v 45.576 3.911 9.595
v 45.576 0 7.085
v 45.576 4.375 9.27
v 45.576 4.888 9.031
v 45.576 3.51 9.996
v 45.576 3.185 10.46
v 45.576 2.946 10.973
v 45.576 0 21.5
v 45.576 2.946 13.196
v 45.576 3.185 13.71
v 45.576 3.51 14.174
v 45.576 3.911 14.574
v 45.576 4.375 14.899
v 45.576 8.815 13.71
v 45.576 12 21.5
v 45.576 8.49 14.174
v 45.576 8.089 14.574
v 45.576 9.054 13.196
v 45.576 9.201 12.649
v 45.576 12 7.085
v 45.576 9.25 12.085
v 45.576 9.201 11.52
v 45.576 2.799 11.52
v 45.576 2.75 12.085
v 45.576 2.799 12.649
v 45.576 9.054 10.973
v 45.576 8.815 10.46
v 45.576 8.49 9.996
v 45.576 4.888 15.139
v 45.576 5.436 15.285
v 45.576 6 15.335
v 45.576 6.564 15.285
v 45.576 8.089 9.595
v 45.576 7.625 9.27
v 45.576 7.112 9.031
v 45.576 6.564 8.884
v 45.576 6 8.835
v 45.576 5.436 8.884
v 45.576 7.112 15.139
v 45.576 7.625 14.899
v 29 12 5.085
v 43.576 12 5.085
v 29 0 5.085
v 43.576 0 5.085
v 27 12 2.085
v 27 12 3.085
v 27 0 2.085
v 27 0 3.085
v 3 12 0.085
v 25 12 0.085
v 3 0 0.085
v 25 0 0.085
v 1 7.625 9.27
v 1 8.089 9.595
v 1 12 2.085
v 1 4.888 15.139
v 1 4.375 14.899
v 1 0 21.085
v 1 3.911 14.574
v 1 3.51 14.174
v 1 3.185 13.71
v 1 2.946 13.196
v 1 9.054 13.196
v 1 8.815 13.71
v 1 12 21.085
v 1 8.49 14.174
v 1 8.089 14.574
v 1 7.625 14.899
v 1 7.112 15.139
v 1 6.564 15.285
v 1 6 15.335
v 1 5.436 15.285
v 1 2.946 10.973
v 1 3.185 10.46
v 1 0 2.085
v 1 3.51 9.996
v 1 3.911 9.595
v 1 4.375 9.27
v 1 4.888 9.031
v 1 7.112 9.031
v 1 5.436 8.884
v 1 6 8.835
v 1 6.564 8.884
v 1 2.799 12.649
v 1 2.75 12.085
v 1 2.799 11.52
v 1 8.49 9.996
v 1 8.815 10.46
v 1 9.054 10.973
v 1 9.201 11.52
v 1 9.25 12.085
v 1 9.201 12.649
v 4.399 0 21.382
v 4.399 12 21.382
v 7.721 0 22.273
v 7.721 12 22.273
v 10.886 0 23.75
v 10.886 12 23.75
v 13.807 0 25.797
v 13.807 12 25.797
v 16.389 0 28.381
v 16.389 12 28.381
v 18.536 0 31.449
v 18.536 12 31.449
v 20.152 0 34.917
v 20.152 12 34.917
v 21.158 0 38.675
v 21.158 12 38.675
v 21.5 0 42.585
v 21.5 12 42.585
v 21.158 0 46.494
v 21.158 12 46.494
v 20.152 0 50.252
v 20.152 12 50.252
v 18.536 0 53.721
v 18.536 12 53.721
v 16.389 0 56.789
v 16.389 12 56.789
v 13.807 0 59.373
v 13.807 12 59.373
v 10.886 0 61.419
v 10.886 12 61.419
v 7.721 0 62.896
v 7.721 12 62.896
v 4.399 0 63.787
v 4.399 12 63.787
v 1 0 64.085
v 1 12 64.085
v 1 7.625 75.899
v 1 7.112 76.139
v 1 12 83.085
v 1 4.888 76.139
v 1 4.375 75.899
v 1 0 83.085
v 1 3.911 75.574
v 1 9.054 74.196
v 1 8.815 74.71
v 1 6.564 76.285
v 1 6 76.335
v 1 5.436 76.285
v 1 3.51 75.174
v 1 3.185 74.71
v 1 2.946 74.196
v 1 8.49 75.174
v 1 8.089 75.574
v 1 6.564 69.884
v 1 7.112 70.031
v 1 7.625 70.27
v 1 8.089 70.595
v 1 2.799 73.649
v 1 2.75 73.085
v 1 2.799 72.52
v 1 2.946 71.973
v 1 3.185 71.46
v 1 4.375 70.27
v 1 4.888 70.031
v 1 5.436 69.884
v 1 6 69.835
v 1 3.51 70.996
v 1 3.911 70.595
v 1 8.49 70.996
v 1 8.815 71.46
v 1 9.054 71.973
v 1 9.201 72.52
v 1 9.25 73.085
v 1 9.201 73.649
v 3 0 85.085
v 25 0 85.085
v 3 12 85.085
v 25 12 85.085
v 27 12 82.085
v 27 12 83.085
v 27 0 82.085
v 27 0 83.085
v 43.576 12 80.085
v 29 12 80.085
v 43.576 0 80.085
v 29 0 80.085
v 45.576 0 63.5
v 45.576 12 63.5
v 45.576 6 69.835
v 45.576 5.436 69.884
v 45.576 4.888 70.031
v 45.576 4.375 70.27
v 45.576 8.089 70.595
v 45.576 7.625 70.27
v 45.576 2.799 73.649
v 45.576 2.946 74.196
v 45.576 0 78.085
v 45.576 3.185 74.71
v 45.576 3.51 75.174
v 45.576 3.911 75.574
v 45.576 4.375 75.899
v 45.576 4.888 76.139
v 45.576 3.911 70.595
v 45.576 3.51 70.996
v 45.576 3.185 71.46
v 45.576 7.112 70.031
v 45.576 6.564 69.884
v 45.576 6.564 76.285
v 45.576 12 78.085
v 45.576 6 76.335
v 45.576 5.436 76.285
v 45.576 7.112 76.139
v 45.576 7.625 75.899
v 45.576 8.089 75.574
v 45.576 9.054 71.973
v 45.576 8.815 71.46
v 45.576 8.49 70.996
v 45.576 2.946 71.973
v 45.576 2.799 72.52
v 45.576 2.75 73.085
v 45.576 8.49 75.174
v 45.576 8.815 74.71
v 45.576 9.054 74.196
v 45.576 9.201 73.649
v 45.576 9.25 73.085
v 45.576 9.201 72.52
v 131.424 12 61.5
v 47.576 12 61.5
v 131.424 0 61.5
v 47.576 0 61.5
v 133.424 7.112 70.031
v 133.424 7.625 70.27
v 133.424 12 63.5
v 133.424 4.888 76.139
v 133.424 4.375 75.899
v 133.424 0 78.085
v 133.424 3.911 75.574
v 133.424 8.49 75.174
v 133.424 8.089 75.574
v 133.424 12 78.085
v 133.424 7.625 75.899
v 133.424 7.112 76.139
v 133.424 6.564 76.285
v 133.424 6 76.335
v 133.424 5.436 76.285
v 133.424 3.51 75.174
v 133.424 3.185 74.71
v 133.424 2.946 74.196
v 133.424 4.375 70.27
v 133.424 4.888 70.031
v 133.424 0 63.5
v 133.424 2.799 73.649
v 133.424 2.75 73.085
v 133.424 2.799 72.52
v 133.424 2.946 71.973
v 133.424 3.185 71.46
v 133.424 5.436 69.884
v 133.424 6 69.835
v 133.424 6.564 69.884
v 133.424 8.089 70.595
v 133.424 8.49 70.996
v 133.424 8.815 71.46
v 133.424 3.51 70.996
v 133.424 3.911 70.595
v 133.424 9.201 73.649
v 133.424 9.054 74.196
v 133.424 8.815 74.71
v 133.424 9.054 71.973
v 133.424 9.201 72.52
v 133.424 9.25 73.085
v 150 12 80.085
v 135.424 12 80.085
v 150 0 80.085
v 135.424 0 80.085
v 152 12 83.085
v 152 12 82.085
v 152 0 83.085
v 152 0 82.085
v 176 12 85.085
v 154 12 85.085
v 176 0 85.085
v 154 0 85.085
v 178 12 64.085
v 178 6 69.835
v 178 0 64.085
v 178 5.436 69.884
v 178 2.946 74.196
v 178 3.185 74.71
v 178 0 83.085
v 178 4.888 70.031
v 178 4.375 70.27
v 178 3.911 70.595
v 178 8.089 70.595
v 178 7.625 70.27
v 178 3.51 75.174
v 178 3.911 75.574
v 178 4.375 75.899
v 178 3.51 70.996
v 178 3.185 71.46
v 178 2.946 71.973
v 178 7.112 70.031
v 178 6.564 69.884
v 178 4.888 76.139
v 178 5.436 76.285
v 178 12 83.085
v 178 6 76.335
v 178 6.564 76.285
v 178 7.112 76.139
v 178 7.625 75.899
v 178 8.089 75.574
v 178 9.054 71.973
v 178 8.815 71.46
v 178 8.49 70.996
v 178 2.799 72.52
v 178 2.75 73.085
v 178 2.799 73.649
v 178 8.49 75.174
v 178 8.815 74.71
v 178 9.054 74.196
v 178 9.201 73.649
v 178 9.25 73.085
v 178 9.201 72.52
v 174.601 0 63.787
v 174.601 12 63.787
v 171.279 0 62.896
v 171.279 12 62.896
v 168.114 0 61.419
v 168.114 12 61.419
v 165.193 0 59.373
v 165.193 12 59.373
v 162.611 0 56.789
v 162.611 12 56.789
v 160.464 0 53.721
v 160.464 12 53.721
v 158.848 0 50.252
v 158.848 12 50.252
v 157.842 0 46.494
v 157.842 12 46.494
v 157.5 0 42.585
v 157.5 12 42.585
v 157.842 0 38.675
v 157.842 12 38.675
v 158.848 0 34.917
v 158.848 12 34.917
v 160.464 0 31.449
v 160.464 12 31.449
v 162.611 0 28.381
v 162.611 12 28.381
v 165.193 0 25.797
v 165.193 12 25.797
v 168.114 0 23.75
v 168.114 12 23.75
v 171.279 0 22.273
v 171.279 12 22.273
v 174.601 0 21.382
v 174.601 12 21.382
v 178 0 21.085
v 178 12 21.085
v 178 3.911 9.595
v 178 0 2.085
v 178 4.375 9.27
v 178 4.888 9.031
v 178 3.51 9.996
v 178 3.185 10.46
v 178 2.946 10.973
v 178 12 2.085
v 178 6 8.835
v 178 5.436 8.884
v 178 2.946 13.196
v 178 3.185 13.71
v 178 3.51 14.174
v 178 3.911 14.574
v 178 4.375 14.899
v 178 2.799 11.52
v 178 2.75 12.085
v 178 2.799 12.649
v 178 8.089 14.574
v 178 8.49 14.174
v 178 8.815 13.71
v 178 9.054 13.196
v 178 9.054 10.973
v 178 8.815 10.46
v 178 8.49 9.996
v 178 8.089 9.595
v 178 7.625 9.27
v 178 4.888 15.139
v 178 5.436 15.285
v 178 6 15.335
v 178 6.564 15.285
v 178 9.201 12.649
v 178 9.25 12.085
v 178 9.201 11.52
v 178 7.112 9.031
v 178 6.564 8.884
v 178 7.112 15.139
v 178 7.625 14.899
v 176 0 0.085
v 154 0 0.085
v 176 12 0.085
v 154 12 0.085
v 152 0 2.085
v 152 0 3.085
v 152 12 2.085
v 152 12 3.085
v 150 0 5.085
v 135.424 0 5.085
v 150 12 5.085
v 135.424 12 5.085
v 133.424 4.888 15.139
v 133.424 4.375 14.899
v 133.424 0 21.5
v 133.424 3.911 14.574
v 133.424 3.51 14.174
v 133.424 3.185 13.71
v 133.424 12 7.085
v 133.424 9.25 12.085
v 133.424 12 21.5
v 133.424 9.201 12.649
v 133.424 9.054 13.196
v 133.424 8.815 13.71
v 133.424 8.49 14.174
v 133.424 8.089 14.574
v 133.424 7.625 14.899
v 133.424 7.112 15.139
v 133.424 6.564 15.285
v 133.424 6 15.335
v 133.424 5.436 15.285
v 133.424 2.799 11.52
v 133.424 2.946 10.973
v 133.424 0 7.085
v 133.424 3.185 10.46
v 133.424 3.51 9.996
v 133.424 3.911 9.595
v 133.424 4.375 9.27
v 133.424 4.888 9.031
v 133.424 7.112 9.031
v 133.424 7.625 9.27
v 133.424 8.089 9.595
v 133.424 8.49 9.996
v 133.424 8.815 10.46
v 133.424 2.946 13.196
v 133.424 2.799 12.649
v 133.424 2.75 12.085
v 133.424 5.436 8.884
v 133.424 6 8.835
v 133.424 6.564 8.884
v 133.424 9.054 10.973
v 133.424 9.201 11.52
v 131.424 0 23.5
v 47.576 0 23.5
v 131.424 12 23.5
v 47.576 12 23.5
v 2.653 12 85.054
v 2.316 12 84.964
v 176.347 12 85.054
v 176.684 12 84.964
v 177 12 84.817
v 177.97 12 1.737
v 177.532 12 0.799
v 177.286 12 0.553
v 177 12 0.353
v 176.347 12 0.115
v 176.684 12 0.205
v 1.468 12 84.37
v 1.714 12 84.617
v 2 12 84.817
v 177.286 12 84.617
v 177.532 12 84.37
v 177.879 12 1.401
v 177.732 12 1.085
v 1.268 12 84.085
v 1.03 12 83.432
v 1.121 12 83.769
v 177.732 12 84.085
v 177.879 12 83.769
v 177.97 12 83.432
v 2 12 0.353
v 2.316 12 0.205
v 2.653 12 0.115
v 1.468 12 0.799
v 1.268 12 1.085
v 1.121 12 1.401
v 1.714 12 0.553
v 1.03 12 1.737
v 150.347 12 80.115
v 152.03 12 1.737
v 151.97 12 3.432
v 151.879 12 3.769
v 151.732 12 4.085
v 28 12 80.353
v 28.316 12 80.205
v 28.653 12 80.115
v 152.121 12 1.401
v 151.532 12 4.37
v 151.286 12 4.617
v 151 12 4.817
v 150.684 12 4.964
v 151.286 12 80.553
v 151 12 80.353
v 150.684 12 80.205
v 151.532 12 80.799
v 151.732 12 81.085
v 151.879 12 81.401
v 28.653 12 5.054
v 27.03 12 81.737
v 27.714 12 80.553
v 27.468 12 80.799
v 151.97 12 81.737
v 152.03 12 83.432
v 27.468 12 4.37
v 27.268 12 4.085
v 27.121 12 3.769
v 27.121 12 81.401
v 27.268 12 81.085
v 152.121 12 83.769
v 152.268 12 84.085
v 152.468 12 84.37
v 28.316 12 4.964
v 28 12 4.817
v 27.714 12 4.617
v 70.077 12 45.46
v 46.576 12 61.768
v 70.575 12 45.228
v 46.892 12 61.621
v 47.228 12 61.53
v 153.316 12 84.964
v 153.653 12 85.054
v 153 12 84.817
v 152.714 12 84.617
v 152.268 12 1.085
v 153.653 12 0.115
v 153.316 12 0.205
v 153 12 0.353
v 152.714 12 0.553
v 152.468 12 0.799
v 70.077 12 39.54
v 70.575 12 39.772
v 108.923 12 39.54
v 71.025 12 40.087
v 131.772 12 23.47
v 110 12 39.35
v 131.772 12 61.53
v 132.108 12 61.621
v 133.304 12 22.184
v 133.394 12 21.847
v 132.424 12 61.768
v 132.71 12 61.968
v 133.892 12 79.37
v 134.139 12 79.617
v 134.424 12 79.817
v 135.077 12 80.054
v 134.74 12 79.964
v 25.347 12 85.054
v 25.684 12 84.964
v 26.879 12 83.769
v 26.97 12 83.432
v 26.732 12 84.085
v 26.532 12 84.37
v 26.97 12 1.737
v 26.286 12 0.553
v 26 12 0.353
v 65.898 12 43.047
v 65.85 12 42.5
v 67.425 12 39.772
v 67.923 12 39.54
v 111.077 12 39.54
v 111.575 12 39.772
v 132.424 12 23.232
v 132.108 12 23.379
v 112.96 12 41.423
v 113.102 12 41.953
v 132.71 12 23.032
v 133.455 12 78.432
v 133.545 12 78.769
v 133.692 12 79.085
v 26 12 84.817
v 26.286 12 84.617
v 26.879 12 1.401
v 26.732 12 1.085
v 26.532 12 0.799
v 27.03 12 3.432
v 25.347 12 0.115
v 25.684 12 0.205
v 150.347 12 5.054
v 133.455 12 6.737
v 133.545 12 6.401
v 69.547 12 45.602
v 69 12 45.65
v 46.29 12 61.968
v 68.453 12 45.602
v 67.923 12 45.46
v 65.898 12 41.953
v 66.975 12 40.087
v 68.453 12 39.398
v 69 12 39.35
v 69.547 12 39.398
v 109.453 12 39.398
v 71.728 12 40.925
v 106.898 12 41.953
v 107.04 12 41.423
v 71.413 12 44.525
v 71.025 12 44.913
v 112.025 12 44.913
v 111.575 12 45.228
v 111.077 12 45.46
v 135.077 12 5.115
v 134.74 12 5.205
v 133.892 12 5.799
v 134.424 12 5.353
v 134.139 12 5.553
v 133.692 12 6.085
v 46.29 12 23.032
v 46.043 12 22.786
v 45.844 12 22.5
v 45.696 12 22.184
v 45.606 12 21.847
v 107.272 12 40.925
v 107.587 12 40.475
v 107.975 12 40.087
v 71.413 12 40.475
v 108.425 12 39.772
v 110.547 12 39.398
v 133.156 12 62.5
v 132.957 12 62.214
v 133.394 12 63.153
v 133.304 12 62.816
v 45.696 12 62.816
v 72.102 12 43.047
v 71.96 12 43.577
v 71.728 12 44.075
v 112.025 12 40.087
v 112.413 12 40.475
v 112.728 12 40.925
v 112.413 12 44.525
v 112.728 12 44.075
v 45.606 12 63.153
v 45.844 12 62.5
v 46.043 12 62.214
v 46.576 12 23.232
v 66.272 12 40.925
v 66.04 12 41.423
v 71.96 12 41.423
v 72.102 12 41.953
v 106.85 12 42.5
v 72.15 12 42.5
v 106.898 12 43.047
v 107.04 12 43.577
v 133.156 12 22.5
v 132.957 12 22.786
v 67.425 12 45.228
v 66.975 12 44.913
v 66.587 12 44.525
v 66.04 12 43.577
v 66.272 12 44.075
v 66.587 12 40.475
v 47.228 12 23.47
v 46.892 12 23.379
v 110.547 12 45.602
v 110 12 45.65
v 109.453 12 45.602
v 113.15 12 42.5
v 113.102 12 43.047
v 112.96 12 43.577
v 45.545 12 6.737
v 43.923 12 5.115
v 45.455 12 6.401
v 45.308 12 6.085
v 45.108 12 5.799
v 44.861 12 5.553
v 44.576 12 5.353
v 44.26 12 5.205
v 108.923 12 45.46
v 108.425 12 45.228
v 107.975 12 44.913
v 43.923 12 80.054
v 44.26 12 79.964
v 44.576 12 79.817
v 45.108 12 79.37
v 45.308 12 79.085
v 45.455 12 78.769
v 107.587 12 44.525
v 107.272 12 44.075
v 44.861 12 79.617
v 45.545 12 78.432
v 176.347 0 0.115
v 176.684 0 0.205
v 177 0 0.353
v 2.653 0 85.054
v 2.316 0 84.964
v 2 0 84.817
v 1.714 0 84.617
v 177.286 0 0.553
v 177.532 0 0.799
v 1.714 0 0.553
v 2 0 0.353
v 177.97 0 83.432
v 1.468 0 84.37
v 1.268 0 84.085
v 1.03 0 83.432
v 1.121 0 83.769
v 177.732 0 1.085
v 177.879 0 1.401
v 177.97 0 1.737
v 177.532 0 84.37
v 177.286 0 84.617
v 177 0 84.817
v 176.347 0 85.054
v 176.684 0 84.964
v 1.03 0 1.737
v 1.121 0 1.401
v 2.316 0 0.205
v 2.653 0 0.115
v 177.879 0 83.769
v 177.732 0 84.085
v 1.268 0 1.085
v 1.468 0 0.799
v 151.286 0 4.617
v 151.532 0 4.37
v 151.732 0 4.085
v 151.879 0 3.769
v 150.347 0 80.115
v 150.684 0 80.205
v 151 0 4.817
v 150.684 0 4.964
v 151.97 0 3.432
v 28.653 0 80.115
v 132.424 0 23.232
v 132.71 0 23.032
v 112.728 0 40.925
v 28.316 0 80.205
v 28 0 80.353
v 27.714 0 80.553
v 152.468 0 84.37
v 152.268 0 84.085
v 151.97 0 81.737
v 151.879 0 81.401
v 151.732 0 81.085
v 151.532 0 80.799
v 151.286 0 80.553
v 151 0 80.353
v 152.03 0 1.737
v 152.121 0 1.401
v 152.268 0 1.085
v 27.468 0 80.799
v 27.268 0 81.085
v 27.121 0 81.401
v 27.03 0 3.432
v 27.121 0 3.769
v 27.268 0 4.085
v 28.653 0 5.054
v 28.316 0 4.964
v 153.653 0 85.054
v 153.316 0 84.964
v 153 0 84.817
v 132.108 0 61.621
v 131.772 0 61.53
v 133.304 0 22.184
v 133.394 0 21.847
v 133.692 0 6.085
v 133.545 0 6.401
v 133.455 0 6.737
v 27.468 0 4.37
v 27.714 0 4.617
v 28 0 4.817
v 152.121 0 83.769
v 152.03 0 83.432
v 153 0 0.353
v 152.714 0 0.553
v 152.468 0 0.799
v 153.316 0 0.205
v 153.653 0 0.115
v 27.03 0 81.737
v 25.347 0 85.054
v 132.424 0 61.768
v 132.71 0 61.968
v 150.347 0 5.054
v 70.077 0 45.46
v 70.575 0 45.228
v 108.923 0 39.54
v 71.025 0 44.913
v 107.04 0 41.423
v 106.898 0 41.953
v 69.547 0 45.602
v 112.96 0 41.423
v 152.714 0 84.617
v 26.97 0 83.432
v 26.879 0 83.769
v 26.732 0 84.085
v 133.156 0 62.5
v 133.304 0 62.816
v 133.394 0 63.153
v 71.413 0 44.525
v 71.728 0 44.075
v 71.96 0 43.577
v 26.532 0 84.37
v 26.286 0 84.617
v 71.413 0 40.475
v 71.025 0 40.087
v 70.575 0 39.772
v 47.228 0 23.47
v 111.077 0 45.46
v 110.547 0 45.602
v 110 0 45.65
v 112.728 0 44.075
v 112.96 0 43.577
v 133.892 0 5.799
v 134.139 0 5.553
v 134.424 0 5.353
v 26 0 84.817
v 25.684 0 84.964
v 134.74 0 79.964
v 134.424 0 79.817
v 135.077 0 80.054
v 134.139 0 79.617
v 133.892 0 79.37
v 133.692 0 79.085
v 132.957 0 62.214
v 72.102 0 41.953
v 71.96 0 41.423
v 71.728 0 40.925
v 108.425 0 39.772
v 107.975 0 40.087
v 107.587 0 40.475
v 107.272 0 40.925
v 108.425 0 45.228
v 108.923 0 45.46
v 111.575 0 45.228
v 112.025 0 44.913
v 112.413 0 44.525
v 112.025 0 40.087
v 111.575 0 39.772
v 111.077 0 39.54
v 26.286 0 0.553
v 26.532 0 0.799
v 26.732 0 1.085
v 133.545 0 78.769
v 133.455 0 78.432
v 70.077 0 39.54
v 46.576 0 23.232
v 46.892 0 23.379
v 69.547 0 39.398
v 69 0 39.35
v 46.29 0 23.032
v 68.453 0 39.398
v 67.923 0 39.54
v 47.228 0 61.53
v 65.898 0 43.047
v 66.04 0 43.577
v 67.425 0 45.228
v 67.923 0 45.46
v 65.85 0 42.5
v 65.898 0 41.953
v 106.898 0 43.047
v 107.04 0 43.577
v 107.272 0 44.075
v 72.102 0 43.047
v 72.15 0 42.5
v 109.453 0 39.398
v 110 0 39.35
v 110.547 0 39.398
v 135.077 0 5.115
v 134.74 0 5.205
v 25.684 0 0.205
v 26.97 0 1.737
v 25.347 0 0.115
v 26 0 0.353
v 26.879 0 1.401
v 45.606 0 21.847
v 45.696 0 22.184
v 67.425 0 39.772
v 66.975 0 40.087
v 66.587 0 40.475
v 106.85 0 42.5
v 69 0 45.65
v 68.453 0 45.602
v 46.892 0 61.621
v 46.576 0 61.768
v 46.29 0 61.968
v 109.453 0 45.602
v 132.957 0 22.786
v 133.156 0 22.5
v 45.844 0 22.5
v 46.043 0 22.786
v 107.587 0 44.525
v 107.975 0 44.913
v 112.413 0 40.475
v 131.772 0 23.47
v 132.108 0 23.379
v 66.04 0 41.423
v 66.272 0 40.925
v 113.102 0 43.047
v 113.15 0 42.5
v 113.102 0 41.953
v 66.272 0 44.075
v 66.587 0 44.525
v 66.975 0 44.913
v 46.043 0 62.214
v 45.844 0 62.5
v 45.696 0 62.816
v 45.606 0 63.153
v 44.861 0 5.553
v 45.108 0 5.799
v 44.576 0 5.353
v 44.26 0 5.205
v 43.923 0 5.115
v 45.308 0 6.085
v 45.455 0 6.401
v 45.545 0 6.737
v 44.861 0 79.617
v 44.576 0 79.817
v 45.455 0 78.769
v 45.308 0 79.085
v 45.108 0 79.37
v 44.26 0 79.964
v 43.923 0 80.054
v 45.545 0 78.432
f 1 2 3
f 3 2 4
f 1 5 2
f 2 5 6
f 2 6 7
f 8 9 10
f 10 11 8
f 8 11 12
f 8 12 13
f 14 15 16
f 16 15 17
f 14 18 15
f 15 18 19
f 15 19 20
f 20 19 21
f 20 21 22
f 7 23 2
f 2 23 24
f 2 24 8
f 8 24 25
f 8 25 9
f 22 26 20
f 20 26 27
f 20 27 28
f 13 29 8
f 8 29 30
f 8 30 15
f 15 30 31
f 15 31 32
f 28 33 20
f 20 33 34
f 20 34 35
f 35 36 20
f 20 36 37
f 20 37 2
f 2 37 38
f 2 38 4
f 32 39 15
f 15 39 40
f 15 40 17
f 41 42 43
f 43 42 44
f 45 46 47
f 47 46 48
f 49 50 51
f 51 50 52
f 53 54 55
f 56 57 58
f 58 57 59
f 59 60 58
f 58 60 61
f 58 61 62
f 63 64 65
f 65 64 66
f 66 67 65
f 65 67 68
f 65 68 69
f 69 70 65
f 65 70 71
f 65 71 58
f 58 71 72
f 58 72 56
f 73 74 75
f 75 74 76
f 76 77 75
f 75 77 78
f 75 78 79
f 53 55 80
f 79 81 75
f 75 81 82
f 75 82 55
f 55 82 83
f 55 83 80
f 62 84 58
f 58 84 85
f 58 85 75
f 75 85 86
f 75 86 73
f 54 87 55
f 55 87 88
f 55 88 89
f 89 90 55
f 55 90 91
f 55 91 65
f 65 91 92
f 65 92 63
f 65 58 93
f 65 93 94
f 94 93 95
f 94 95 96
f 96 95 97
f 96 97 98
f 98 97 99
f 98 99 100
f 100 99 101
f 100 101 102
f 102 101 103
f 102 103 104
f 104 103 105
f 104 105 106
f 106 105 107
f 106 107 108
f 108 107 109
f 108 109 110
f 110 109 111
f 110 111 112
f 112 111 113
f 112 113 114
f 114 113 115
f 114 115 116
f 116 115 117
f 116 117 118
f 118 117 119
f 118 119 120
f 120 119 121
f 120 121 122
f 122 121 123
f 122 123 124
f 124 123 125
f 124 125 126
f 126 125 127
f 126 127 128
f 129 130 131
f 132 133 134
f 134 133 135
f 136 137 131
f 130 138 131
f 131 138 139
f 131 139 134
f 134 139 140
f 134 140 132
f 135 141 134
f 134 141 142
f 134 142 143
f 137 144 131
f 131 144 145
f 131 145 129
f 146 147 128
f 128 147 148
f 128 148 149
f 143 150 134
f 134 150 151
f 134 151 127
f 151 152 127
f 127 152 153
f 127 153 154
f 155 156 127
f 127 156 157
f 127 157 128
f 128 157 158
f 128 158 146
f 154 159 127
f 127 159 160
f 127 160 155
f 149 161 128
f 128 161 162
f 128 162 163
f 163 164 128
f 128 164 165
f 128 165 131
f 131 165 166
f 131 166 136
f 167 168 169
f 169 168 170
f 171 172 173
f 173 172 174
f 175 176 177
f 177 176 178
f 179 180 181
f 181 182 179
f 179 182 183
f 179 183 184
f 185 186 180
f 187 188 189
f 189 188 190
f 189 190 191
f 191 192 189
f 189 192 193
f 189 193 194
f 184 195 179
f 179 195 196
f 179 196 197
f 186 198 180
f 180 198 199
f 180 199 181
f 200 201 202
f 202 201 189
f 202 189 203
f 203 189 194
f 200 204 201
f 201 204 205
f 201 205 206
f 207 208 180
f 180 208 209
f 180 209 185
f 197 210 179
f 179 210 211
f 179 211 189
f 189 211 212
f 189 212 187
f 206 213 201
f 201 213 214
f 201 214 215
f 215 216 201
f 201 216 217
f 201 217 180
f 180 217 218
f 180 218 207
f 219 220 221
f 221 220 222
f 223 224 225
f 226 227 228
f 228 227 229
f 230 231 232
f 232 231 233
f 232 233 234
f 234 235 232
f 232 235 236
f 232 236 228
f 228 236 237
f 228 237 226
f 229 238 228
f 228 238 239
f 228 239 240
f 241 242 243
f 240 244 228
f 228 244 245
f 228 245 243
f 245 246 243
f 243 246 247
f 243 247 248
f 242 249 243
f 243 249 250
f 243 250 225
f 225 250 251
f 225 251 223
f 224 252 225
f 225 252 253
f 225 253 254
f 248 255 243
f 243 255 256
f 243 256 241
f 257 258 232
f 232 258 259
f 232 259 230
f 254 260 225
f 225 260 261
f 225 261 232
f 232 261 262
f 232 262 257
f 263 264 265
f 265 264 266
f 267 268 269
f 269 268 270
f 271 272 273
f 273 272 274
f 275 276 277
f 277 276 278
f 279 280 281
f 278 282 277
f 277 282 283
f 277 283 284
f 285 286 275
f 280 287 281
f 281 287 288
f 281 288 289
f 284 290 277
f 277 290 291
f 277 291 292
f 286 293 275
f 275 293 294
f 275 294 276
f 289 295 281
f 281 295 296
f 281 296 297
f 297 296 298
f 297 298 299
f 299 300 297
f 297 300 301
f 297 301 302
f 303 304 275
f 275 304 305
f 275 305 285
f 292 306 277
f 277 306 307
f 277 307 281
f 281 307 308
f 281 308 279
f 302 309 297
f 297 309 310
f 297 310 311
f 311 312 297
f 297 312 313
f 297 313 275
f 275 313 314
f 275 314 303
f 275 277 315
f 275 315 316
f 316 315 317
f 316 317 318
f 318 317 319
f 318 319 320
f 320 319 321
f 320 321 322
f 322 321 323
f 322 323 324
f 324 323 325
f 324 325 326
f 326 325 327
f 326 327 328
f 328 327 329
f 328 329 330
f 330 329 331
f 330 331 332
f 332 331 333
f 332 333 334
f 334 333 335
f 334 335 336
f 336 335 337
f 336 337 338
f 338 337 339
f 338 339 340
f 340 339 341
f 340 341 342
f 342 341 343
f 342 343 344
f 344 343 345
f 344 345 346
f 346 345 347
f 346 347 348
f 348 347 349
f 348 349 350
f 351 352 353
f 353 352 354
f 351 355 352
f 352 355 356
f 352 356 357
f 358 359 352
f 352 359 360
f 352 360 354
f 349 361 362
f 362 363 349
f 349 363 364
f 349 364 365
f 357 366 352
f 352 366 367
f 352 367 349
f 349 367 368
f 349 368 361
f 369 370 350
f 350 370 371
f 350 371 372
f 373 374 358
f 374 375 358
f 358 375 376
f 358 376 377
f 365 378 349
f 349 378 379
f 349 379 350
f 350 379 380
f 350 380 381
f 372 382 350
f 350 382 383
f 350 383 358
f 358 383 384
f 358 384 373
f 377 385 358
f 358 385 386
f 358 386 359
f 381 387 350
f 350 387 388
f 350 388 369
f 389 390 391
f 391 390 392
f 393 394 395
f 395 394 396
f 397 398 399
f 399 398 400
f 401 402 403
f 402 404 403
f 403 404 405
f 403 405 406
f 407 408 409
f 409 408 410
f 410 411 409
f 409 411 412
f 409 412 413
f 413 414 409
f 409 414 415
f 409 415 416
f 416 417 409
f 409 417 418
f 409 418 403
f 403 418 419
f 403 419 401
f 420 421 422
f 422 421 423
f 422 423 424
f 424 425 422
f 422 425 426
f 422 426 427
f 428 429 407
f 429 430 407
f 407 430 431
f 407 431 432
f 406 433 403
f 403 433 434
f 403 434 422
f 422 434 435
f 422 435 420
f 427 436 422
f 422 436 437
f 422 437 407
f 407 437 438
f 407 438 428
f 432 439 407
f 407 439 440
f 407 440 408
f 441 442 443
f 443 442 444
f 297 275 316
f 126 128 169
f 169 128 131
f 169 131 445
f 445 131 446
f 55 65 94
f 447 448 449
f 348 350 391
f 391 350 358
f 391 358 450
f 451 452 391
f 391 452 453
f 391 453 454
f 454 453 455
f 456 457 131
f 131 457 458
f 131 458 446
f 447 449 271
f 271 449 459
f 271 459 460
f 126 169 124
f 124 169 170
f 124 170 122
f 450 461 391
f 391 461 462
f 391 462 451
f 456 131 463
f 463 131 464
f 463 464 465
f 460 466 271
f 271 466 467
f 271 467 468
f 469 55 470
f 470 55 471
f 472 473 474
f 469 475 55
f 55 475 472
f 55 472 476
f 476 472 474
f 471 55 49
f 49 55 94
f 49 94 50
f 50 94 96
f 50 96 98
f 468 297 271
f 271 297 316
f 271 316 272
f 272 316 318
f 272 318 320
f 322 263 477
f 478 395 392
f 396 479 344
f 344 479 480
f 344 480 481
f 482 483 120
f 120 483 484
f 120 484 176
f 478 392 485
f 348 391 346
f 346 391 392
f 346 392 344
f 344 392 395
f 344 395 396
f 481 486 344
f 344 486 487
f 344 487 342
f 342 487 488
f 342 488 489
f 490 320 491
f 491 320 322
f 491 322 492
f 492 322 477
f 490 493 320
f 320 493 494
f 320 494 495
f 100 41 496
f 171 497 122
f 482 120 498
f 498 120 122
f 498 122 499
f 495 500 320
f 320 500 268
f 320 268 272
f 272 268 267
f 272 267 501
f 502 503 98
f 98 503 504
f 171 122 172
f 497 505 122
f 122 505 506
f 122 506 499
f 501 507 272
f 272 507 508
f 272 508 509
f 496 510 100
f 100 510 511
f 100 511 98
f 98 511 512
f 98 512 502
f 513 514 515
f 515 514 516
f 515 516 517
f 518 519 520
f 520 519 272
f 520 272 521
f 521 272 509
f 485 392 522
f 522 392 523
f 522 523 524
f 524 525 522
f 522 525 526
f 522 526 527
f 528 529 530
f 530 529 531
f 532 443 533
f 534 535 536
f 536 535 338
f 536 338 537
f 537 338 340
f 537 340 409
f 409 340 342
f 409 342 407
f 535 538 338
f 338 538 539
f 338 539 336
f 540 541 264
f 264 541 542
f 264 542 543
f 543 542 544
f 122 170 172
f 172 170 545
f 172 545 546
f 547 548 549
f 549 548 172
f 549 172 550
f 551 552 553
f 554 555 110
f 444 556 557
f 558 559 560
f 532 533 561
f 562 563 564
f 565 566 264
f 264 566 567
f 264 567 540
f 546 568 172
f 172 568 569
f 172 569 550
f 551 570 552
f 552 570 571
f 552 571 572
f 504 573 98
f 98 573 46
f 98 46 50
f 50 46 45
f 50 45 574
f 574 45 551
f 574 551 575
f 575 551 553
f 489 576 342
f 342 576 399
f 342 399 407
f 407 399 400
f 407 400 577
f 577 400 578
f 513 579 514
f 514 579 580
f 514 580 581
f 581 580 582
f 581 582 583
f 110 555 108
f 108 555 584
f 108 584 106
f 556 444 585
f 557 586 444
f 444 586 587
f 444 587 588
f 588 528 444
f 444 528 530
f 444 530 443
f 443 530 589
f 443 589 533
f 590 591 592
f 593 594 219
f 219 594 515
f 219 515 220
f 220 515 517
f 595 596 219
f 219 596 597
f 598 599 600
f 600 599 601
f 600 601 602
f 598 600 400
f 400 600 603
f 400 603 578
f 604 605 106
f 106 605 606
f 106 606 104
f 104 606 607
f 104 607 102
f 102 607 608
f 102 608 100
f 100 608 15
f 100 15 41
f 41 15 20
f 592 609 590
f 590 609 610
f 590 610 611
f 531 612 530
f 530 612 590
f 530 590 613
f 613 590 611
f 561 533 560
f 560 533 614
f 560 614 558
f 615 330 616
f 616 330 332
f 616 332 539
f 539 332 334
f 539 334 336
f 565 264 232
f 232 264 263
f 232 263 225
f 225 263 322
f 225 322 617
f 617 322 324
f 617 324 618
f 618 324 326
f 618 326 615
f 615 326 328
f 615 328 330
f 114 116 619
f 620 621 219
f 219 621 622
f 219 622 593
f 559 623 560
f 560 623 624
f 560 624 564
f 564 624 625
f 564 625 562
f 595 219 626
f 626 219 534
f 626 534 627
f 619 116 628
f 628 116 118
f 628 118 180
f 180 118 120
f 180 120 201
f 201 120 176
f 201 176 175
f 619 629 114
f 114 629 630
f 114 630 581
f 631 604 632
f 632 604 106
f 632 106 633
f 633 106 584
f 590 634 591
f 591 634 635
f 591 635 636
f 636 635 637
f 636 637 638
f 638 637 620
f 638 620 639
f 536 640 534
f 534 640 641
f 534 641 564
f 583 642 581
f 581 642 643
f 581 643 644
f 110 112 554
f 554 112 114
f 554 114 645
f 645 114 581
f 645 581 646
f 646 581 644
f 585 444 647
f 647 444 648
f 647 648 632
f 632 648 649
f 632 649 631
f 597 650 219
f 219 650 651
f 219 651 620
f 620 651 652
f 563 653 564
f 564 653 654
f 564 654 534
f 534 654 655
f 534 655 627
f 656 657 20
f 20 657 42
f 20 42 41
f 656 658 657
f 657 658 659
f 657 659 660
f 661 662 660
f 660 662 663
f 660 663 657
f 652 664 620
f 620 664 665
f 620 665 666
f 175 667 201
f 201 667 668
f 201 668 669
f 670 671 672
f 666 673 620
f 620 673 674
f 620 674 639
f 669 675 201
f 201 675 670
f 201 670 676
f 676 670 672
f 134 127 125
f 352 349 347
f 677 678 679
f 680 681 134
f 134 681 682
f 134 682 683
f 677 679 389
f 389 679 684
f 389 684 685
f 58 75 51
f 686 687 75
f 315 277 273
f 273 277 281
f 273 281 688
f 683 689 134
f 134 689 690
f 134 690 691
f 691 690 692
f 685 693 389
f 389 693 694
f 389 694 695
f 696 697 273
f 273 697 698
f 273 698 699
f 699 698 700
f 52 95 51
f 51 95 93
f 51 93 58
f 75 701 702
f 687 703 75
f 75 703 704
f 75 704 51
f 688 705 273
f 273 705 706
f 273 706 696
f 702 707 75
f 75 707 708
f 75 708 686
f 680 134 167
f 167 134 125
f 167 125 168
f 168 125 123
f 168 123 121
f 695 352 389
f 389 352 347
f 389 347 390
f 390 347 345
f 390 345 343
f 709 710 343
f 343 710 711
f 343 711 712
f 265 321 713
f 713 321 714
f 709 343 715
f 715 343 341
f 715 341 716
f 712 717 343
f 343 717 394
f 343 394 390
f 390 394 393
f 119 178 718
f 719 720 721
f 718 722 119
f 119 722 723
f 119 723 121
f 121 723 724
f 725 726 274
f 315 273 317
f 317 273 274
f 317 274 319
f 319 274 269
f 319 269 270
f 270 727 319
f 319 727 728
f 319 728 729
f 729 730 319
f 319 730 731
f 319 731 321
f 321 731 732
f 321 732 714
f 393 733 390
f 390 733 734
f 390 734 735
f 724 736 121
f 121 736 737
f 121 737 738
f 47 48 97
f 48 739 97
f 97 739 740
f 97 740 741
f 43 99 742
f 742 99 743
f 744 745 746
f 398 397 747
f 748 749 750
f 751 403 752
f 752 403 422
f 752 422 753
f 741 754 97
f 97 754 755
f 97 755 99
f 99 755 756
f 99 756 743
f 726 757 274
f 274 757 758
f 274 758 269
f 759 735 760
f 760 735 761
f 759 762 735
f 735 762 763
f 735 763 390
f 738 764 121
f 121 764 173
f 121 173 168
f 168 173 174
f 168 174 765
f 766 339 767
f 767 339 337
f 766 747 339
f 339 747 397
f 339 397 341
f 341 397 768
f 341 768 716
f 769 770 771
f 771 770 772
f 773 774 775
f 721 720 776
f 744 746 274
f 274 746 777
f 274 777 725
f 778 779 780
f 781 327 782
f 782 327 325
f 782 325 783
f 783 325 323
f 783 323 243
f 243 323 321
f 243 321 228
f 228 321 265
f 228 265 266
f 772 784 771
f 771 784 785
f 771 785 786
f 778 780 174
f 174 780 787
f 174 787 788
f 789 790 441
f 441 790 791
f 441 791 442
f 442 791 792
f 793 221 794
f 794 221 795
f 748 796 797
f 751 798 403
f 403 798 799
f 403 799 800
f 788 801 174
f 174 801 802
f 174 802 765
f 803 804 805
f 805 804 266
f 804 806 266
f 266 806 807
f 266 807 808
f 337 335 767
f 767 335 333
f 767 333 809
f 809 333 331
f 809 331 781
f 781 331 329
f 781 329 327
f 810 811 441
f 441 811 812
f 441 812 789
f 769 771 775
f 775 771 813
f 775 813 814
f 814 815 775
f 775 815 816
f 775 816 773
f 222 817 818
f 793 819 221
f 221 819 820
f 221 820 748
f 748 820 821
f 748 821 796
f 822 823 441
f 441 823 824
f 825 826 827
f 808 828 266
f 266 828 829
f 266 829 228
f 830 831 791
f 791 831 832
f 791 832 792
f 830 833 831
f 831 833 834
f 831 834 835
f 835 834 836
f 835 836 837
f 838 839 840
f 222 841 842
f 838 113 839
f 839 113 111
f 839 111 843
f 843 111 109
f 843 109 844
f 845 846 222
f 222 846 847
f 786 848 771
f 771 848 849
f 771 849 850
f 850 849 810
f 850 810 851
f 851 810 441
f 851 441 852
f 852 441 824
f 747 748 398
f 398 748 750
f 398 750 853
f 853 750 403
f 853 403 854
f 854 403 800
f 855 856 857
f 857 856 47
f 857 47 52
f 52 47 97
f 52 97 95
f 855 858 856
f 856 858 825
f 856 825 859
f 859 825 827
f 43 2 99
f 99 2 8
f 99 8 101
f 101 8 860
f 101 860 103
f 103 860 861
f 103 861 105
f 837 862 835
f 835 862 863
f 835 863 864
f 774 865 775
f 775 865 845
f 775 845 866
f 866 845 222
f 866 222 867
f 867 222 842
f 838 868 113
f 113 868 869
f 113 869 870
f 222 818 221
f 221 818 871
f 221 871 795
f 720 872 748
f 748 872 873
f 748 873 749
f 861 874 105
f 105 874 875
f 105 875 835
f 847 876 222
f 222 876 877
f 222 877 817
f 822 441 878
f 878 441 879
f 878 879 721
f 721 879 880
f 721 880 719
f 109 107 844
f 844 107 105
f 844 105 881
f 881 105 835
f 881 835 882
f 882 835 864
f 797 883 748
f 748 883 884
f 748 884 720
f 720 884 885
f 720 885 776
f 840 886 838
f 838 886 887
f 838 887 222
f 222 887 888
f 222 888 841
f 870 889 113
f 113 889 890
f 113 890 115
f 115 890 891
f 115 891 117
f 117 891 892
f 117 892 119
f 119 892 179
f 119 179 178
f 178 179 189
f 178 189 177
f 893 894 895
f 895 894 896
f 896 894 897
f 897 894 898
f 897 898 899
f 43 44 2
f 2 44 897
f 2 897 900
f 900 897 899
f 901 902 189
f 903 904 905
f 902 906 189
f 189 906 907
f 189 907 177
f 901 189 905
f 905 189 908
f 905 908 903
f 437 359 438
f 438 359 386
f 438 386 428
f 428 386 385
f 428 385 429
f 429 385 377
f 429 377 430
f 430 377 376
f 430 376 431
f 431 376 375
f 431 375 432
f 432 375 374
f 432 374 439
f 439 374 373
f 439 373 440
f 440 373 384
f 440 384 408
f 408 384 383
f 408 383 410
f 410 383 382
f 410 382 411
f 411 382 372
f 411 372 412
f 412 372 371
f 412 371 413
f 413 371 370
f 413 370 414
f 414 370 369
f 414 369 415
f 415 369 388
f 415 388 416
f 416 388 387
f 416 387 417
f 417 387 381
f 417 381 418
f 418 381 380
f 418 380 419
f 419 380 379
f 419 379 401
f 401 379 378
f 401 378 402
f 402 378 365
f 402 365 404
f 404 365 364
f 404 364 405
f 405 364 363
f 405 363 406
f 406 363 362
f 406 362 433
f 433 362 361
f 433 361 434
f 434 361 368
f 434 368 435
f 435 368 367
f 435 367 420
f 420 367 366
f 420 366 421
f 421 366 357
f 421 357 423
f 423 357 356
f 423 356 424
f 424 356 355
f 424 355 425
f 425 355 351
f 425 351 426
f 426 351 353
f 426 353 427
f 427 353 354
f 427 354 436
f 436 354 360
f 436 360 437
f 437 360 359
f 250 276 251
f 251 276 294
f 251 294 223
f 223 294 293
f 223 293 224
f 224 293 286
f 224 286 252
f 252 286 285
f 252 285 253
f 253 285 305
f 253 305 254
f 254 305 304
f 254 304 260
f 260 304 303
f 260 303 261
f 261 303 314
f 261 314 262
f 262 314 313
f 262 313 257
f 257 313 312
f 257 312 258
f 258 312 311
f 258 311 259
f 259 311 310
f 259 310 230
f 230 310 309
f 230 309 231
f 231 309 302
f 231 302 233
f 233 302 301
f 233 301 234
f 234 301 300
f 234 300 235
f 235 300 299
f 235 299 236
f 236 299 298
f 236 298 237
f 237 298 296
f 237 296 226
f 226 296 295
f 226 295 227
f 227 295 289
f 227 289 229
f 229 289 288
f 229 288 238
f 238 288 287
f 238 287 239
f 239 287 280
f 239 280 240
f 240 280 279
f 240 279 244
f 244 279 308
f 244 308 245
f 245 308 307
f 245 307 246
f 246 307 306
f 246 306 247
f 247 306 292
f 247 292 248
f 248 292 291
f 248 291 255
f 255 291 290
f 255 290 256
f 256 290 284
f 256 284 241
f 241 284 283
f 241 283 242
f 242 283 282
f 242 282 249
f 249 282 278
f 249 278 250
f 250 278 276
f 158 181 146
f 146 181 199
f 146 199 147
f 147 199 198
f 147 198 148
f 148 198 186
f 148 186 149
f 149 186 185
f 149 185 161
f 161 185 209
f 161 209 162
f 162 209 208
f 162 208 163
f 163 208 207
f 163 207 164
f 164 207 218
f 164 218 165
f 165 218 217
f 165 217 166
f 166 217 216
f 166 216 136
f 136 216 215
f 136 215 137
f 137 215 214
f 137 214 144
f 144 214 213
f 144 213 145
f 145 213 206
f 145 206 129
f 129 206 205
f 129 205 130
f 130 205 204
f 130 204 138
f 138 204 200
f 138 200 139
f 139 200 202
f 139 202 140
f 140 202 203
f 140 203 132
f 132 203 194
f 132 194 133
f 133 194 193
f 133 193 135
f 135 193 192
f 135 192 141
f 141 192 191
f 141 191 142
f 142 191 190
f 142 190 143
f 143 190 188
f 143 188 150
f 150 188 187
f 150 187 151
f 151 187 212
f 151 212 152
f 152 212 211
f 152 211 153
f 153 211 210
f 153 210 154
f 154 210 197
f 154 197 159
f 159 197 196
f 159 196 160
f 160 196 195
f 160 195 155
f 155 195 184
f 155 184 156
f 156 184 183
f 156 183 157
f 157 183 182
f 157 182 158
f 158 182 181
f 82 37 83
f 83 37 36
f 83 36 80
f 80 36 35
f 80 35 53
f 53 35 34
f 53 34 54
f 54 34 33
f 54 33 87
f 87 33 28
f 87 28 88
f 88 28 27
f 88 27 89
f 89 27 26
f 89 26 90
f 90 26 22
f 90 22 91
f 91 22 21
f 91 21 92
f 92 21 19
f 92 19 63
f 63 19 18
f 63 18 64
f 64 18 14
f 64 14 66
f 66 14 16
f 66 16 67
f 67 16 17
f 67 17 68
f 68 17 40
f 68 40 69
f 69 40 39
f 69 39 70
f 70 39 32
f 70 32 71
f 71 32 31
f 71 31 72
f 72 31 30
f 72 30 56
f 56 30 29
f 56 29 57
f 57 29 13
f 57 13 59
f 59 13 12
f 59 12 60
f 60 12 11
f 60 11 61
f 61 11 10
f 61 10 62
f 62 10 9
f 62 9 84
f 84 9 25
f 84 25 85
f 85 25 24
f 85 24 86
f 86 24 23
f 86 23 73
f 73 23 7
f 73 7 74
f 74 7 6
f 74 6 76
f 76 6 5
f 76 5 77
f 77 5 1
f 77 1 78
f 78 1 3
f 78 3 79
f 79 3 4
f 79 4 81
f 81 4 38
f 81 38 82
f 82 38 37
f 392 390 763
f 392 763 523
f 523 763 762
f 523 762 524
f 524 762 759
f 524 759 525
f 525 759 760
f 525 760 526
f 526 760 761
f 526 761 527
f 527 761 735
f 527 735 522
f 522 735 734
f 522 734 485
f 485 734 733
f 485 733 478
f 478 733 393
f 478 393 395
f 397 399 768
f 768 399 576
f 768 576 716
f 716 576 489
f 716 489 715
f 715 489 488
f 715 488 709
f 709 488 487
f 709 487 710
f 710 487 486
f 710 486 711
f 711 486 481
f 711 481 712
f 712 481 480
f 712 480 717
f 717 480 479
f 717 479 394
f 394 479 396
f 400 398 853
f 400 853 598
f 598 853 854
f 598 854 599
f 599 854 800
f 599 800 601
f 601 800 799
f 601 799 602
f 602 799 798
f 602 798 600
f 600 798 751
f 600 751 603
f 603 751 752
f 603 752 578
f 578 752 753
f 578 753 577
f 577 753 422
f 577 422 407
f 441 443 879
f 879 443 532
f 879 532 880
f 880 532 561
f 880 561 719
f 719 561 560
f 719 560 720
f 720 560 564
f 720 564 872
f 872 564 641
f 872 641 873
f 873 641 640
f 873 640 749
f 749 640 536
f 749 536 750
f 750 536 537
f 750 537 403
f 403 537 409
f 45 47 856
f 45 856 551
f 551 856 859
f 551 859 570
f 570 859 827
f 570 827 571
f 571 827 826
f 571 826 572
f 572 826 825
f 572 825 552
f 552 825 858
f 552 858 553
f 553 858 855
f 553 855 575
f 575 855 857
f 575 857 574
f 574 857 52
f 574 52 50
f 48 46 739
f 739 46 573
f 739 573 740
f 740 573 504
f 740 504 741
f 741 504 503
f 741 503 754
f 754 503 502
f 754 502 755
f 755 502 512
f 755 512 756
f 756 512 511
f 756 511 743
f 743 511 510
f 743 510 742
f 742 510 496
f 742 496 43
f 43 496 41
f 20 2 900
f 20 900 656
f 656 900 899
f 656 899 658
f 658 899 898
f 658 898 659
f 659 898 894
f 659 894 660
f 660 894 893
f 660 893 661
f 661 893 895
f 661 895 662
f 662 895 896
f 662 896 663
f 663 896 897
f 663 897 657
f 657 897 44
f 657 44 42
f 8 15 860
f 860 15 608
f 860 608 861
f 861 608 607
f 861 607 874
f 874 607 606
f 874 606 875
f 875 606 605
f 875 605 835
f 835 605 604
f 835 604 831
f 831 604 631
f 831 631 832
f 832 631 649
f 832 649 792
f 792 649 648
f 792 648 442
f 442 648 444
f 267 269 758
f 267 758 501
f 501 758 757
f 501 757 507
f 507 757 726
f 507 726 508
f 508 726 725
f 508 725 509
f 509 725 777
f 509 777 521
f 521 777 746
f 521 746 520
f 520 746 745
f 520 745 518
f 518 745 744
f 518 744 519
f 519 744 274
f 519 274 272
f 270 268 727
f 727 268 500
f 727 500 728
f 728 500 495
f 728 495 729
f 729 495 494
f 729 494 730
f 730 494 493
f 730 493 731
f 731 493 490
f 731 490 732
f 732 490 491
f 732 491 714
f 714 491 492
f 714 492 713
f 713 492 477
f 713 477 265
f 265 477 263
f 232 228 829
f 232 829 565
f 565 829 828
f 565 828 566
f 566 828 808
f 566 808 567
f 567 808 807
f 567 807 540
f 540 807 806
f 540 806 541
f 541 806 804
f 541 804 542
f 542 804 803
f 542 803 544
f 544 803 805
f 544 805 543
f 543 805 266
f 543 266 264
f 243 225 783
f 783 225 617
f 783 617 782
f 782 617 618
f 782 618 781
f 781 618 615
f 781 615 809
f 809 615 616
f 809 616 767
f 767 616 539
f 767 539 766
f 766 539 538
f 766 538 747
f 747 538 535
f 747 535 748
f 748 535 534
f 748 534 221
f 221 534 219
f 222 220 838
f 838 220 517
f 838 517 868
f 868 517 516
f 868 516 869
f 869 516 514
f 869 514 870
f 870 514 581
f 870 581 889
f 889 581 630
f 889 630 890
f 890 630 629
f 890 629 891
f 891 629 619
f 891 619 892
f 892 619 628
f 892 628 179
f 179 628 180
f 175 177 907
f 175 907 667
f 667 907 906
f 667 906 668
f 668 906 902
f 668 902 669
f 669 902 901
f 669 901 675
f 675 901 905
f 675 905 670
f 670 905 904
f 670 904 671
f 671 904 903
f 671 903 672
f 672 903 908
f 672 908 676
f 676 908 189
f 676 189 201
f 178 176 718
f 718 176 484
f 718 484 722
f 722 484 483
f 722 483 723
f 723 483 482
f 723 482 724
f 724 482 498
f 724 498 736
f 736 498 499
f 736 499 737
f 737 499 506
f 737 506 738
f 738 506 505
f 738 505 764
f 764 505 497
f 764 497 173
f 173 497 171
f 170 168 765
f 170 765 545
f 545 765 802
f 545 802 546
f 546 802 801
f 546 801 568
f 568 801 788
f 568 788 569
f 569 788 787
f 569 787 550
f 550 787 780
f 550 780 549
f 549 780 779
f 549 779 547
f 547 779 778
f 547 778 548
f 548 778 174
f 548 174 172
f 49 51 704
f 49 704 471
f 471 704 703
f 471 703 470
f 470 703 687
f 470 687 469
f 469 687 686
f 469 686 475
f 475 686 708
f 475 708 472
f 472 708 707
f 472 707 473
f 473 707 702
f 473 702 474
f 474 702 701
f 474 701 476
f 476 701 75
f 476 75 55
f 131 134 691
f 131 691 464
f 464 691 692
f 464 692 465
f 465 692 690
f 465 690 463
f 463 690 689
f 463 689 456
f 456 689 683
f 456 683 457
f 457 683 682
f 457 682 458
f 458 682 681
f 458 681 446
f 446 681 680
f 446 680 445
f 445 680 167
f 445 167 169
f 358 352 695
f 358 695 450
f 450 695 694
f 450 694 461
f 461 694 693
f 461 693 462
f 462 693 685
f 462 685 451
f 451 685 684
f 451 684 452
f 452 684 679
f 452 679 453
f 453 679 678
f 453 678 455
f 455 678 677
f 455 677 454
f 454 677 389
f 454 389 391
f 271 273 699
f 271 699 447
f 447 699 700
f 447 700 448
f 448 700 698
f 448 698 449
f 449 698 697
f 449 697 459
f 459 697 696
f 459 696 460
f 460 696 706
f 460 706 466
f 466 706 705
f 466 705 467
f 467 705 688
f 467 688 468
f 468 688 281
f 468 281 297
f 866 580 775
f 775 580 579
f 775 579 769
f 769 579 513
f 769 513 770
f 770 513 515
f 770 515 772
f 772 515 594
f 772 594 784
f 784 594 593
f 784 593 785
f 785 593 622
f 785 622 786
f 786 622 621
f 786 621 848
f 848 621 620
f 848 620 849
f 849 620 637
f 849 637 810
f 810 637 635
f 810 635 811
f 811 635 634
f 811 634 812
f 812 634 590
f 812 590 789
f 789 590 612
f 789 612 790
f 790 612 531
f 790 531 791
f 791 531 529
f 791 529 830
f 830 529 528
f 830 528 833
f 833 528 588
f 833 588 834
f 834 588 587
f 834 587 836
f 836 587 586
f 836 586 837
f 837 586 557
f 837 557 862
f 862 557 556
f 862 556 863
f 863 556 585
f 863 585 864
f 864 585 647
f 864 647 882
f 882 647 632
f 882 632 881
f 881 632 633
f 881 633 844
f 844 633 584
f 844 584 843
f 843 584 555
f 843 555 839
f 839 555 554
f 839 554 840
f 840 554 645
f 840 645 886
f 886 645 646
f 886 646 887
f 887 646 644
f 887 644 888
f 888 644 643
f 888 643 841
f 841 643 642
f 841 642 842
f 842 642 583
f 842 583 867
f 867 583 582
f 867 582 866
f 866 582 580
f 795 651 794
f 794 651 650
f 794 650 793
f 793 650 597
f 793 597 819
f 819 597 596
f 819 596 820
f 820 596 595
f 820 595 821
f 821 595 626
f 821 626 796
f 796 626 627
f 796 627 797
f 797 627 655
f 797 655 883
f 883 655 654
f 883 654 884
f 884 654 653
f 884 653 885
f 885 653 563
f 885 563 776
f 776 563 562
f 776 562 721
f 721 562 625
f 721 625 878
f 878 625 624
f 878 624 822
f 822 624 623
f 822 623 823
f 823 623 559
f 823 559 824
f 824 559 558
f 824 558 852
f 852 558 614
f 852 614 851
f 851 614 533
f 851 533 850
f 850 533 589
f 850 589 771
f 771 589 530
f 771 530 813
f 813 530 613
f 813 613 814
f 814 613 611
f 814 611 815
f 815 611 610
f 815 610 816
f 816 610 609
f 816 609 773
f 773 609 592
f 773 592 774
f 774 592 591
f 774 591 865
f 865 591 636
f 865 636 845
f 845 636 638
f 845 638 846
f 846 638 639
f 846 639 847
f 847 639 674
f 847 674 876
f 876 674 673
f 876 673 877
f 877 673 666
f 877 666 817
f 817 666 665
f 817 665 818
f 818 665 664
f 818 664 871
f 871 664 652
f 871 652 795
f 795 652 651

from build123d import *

# Parameters (mm, degrees)
EXTRUDE_1_DEPTH     = 12
SKETCH_2_R          = 3.25
CUT_EXTRUDE_3_DEPTH = 197.754705478
FILLET_1_R          = 2
FILLET_2_R          = 2
SKETCH_3_R          = 3.15
CUT_EXTRUDE_4_DEPTH = 198.654785239


with BuildPart() as part:
    # 草圖1 → 填料-伸長1 (new body)
    with BuildSketch(Plane(origin=(0, 0, 0), x_dir=(1, 0, 0), z_dir=(0, 1, 0))):
        with BuildLine():
            Line((133.424419381, -23.5), (45.575580619, -23.5))
            Line((45.575580619, -23.5), (45.575580619, -5.084746417))
            Line((45.575580619, -5.084746417), (27, -5.084746417))
            Line((27, -5.084746417), (27, -0.084746417))
            Line((27, -0.084746417), (1, -0.084746417))
            Line((1, -0.084746417), (1, -21.084746417))
            add(Edge.make_bspline(
                [(1, -64.084746417), (21.5, -64.084746417), (21.5, -42.584746417), (21.5, -21.084746417), (1, -21.084746417)],
                knots=[3.141592654, 3.141592654, 3.141592654, 4.71238898, 4.71238898, 6.283185307, 6.283185307, 6.283185307], degree=2, weights=[1, 0.707106781, 1, 0.707106781, 1]))
            Line((1, -64.084746417), (1, -85.084746417))
            Line((1, -85.084746417), (27, -85.084746417))
            Line((27, -85.084746417), (27, -80.084746417))
            Line((27, -80.084746417), (45.575580619, -80.084746417))
            Line((45.575580619, -80.084746417), (45.575580619, -61.5))
            Line((45.575580619, -61.5), (133.424419381, -61.5))
            Line((133.424419381, -61.5), (133.424419381, -80.084746417))
            Line((133.424419381, -80.084746417), (152, -80.084746417))
            Line((152, -80.084746417), (152, -85.084746417))
            Line((152, -85.084746417), (178, -85.084746417))
            Line((178, -85.084746417), (178, -64.084746417))
            add(Edge.make_bspline(
                [(178, -21.084746417), (157.5, -21.084746417), (157.5, -42.584746417), (157.5, -64.084746417), (178, -64.084746417)],
                knots=[0, 0, 0, 1.570796327, 1.570796327, 3.141592654, 3.141592654, 3.141592654], degree=2, weights=[1, 0.707106781, 1, 0.707106781, 1]))
            Line((178, -21.084746417), (178, -0.084746417))
            Line((178, -0.084746417), (152, -0.084746417))
            Line((152, -0.084746417), (152, -5.084746417))
            Line((152, -5.084746417), (133.424419381, -5.084746417))
            Line((133.424419381, -5.084746417), (133.424419381, -23.5))
        make_face()
    extrude(amount=EXTRUDE_1_DEPTH)

    # 草圖2 → 除料-伸長3 (cut, through all)
    with BuildSketch(Plane(origin=(178, 0, 0), x_dir=(0, 0, -1), z_dir=(1, 0, 0))):
        with Locations((-12.084746417, 6)):
            Circle(SKETCH_2_R)
        with Locations((-73.084746417, 6)):
            Circle(SKETCH_2_R)
    extrude(amount=-CUT_EXTRUDE_3_DEPTH, mode=Mode.SUBTRACT)

    # 圓角1
    fillet_1_edges = [part.edges().sort_by_distance(p)[0] for p in [
        (45.575580619, 6, 23.5),
        (133.424419381, 6, 23.5),
        (133.424419381, 6, 5.084746417),
        (152, 6, 5.084746417),
        (152, 6, 0.084746417),
        (152, 6, 85.084746417),
        (152, 6, 80.084746417),
        (133.424419381, 6, 80.084746417),
        (133.424419381, 6, 61.5),
        (45.575580619, 6, 61.5),
        (45.575580619, 6, 80.084746417),
        (27, 6, 80.084746417),
        (27, 6, 85.084746417),
        (27, 6, 0.084746417),
        (27, 6, 5.084746417),
        (45.575580619, 6, 5.084746417),
    ]]
    fillet(fillet_1_edges, radius=FILLET_1_R)

    # 圓角2
    fillet_2_edges = [part.edges().sort_by_distance(p)[0] for p in [
        (178, 6, 0.084746417),
        (178, 6, 85.084746417),
        (1, 6, 85.084746417),
        (1, 6, 0.084746417),
    ]]
    fillet(fillet_2_edges, radius=FILLET_2_R)

    # 草圖3 → 除料-伸長4 (cut, through all)
    with BuildSketch(Plane(origin=(0, 12, 0), x_dir=(1, 0, 0), z_dir=(0, 1, 0))):
        with Locations(Location((110, -42.5, 0), (0, 0, 270))):
            Circle(SKETCH_3_R)
        with Locations(Location((69, -42.5, 0), (0, 0, 90))):
            Circle(SKETCH_3_R)
    extrude(amount=-CUT_EXTRUDE_4_DEPTH, mode=Mode.SUBTRACT)


solid = part.part
